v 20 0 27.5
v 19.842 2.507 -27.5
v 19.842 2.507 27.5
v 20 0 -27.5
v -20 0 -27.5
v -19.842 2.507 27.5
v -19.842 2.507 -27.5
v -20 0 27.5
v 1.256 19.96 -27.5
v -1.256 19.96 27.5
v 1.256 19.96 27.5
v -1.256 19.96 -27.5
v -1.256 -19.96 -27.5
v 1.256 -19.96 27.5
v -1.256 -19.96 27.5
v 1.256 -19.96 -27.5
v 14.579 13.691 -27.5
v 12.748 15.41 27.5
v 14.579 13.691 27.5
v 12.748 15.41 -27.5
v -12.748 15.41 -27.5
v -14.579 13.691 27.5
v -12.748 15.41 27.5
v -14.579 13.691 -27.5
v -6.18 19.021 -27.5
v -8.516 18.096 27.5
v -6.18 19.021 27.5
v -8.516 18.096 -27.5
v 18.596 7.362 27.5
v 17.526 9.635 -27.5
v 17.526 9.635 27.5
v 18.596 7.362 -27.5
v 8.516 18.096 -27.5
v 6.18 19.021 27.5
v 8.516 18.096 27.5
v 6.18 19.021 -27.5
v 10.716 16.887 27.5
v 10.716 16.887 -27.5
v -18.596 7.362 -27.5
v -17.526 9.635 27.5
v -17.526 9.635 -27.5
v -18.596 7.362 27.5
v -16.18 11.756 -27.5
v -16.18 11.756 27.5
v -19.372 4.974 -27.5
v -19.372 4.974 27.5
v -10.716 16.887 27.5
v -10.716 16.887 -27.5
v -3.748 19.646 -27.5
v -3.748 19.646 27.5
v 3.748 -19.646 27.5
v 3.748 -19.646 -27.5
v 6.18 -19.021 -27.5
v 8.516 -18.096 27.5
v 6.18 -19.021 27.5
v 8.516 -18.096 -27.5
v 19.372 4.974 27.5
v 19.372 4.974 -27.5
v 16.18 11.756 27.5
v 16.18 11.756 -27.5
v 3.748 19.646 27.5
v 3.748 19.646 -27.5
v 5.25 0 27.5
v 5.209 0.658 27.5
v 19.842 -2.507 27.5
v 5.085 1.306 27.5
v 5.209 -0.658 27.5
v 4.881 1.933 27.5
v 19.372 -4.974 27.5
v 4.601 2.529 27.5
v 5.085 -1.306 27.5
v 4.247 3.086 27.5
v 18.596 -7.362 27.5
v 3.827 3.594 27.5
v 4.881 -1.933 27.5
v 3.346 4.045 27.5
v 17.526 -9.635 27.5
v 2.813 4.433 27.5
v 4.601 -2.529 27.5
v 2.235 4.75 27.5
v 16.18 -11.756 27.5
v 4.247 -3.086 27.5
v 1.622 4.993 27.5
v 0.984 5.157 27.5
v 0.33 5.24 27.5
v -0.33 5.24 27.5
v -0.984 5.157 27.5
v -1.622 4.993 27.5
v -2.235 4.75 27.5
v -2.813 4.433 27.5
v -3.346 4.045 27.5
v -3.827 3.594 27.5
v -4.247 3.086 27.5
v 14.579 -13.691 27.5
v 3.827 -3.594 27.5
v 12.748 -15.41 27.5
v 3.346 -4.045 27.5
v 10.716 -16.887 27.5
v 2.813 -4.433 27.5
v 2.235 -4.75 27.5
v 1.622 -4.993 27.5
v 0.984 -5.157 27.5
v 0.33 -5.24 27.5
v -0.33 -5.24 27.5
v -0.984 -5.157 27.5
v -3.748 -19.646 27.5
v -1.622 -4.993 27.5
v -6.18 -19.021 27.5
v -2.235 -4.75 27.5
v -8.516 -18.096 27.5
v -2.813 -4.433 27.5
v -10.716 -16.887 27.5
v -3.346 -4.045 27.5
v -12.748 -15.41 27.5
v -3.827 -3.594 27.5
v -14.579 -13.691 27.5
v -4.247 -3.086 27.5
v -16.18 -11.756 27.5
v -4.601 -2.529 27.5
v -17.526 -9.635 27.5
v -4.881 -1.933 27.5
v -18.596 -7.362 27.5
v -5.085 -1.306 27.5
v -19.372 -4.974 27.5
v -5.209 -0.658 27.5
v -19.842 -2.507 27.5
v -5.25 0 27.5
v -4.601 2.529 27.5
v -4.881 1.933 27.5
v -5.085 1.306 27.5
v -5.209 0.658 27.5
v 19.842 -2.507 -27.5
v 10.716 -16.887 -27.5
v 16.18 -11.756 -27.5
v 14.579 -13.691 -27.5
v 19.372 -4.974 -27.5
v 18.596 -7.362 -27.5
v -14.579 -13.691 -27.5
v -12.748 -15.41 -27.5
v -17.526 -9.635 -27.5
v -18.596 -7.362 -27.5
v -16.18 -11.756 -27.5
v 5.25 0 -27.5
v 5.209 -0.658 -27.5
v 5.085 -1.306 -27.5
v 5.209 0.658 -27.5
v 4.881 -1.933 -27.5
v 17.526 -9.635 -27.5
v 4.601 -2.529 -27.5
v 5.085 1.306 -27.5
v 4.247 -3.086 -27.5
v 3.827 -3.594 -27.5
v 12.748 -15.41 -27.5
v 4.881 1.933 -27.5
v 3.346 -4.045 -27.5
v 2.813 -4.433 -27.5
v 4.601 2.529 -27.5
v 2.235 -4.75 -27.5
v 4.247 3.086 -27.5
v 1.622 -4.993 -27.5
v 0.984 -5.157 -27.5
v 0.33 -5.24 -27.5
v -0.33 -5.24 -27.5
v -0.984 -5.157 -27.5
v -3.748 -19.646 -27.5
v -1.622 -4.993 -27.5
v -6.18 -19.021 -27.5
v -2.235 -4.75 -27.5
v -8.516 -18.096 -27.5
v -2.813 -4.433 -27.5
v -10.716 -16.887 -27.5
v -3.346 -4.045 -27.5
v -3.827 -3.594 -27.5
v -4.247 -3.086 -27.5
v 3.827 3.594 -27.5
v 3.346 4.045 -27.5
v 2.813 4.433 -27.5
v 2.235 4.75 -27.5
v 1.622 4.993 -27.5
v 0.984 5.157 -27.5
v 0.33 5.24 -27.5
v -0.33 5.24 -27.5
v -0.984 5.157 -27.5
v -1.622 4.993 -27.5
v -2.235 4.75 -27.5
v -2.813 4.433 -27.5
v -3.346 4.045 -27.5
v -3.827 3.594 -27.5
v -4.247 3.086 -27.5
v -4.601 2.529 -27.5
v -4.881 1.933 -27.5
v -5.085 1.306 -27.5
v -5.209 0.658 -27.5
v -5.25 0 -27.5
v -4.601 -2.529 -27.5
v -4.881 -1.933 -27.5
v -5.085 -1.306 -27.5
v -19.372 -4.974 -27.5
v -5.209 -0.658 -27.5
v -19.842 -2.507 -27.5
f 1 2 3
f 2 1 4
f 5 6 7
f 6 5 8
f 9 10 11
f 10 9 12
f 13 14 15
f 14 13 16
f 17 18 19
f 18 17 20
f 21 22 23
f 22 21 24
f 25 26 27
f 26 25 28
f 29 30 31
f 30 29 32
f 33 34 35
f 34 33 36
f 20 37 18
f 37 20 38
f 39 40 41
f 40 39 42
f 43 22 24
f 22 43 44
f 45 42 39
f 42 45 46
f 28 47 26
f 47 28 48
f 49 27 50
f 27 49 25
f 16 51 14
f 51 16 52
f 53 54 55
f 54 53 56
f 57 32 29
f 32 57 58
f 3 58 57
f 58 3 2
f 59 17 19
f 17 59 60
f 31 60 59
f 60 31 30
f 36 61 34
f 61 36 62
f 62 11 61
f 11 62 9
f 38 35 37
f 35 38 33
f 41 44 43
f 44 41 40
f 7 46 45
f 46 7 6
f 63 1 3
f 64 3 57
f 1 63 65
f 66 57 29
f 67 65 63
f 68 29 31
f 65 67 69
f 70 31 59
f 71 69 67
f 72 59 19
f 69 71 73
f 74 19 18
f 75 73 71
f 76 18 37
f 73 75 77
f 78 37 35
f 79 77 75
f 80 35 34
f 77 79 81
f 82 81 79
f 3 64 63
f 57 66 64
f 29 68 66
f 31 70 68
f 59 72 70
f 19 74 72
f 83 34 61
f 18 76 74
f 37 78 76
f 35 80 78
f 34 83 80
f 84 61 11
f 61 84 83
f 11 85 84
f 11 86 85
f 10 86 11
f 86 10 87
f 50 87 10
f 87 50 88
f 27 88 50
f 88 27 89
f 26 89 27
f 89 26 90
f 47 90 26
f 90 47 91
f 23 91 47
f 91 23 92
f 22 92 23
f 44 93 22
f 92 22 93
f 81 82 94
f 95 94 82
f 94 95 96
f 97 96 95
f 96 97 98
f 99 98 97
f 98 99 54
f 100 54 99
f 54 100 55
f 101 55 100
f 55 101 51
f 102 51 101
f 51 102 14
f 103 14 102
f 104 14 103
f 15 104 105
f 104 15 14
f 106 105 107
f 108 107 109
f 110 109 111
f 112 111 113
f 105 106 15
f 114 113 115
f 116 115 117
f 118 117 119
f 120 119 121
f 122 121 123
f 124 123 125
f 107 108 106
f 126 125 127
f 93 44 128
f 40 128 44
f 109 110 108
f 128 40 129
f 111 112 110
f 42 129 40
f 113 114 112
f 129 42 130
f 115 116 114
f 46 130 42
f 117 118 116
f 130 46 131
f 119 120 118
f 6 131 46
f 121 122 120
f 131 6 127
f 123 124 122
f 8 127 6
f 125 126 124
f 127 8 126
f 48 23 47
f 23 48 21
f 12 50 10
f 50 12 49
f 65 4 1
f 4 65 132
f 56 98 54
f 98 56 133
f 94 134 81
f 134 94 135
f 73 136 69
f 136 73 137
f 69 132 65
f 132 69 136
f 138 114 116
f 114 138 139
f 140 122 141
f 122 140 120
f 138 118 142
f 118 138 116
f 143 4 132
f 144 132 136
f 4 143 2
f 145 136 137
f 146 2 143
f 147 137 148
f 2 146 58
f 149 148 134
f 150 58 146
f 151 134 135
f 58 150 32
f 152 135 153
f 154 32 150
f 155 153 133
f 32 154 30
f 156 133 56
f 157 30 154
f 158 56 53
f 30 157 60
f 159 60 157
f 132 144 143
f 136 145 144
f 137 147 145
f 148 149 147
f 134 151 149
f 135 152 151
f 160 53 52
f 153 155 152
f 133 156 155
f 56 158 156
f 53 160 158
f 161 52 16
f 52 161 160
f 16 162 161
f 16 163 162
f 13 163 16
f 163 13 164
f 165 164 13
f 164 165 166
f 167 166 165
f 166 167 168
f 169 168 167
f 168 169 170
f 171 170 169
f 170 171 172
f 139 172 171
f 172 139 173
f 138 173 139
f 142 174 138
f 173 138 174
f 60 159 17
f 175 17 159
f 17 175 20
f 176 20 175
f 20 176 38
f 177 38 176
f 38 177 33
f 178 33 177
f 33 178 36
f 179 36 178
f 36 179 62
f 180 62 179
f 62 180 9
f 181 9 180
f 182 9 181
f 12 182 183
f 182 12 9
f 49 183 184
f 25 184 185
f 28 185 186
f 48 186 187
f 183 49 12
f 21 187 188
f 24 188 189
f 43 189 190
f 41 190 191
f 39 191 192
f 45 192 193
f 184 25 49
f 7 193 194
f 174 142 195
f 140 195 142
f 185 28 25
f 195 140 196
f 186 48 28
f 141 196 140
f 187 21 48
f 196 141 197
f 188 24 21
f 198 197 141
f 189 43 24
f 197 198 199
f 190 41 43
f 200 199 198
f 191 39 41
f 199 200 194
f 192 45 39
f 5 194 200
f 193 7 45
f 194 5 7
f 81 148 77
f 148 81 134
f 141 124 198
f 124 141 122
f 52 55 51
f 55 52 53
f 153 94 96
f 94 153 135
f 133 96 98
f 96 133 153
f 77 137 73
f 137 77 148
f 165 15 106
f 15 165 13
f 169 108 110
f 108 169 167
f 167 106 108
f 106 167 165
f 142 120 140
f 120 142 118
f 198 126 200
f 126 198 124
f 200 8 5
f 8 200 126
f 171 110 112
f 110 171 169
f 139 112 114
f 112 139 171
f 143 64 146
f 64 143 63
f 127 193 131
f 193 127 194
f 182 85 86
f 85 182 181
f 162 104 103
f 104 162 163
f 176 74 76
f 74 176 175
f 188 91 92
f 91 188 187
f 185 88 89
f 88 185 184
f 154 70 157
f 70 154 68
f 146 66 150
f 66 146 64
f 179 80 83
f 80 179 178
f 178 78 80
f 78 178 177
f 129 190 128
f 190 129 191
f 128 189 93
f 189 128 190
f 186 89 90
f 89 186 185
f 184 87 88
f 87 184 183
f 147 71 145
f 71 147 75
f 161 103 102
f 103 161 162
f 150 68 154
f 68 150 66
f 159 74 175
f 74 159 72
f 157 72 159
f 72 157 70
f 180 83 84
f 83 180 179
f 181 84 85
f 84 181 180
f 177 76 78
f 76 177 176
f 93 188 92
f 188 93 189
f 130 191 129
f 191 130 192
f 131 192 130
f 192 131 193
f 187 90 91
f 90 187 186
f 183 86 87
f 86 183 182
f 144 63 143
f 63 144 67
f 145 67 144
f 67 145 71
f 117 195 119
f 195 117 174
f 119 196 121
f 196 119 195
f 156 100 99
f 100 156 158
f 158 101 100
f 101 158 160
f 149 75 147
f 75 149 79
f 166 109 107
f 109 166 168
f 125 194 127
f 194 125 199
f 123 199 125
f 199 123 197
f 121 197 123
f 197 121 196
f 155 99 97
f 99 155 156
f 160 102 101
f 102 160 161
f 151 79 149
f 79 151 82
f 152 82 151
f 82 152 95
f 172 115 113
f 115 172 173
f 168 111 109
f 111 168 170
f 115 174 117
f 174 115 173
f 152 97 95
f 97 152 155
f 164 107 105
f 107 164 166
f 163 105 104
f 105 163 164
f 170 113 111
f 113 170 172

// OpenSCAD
$fn = 50;


difference() {
	union() {
		translate(v = [0, 0, -27.5000000000]) {
			cylinder(h = 55, r = 20.0000000000);
		}
	}
	union() {
		translate(v = [0, 0, -100.0000000000]) {
			cylinder(h = 200, r = 5.2500000000);
		}
	}
}
